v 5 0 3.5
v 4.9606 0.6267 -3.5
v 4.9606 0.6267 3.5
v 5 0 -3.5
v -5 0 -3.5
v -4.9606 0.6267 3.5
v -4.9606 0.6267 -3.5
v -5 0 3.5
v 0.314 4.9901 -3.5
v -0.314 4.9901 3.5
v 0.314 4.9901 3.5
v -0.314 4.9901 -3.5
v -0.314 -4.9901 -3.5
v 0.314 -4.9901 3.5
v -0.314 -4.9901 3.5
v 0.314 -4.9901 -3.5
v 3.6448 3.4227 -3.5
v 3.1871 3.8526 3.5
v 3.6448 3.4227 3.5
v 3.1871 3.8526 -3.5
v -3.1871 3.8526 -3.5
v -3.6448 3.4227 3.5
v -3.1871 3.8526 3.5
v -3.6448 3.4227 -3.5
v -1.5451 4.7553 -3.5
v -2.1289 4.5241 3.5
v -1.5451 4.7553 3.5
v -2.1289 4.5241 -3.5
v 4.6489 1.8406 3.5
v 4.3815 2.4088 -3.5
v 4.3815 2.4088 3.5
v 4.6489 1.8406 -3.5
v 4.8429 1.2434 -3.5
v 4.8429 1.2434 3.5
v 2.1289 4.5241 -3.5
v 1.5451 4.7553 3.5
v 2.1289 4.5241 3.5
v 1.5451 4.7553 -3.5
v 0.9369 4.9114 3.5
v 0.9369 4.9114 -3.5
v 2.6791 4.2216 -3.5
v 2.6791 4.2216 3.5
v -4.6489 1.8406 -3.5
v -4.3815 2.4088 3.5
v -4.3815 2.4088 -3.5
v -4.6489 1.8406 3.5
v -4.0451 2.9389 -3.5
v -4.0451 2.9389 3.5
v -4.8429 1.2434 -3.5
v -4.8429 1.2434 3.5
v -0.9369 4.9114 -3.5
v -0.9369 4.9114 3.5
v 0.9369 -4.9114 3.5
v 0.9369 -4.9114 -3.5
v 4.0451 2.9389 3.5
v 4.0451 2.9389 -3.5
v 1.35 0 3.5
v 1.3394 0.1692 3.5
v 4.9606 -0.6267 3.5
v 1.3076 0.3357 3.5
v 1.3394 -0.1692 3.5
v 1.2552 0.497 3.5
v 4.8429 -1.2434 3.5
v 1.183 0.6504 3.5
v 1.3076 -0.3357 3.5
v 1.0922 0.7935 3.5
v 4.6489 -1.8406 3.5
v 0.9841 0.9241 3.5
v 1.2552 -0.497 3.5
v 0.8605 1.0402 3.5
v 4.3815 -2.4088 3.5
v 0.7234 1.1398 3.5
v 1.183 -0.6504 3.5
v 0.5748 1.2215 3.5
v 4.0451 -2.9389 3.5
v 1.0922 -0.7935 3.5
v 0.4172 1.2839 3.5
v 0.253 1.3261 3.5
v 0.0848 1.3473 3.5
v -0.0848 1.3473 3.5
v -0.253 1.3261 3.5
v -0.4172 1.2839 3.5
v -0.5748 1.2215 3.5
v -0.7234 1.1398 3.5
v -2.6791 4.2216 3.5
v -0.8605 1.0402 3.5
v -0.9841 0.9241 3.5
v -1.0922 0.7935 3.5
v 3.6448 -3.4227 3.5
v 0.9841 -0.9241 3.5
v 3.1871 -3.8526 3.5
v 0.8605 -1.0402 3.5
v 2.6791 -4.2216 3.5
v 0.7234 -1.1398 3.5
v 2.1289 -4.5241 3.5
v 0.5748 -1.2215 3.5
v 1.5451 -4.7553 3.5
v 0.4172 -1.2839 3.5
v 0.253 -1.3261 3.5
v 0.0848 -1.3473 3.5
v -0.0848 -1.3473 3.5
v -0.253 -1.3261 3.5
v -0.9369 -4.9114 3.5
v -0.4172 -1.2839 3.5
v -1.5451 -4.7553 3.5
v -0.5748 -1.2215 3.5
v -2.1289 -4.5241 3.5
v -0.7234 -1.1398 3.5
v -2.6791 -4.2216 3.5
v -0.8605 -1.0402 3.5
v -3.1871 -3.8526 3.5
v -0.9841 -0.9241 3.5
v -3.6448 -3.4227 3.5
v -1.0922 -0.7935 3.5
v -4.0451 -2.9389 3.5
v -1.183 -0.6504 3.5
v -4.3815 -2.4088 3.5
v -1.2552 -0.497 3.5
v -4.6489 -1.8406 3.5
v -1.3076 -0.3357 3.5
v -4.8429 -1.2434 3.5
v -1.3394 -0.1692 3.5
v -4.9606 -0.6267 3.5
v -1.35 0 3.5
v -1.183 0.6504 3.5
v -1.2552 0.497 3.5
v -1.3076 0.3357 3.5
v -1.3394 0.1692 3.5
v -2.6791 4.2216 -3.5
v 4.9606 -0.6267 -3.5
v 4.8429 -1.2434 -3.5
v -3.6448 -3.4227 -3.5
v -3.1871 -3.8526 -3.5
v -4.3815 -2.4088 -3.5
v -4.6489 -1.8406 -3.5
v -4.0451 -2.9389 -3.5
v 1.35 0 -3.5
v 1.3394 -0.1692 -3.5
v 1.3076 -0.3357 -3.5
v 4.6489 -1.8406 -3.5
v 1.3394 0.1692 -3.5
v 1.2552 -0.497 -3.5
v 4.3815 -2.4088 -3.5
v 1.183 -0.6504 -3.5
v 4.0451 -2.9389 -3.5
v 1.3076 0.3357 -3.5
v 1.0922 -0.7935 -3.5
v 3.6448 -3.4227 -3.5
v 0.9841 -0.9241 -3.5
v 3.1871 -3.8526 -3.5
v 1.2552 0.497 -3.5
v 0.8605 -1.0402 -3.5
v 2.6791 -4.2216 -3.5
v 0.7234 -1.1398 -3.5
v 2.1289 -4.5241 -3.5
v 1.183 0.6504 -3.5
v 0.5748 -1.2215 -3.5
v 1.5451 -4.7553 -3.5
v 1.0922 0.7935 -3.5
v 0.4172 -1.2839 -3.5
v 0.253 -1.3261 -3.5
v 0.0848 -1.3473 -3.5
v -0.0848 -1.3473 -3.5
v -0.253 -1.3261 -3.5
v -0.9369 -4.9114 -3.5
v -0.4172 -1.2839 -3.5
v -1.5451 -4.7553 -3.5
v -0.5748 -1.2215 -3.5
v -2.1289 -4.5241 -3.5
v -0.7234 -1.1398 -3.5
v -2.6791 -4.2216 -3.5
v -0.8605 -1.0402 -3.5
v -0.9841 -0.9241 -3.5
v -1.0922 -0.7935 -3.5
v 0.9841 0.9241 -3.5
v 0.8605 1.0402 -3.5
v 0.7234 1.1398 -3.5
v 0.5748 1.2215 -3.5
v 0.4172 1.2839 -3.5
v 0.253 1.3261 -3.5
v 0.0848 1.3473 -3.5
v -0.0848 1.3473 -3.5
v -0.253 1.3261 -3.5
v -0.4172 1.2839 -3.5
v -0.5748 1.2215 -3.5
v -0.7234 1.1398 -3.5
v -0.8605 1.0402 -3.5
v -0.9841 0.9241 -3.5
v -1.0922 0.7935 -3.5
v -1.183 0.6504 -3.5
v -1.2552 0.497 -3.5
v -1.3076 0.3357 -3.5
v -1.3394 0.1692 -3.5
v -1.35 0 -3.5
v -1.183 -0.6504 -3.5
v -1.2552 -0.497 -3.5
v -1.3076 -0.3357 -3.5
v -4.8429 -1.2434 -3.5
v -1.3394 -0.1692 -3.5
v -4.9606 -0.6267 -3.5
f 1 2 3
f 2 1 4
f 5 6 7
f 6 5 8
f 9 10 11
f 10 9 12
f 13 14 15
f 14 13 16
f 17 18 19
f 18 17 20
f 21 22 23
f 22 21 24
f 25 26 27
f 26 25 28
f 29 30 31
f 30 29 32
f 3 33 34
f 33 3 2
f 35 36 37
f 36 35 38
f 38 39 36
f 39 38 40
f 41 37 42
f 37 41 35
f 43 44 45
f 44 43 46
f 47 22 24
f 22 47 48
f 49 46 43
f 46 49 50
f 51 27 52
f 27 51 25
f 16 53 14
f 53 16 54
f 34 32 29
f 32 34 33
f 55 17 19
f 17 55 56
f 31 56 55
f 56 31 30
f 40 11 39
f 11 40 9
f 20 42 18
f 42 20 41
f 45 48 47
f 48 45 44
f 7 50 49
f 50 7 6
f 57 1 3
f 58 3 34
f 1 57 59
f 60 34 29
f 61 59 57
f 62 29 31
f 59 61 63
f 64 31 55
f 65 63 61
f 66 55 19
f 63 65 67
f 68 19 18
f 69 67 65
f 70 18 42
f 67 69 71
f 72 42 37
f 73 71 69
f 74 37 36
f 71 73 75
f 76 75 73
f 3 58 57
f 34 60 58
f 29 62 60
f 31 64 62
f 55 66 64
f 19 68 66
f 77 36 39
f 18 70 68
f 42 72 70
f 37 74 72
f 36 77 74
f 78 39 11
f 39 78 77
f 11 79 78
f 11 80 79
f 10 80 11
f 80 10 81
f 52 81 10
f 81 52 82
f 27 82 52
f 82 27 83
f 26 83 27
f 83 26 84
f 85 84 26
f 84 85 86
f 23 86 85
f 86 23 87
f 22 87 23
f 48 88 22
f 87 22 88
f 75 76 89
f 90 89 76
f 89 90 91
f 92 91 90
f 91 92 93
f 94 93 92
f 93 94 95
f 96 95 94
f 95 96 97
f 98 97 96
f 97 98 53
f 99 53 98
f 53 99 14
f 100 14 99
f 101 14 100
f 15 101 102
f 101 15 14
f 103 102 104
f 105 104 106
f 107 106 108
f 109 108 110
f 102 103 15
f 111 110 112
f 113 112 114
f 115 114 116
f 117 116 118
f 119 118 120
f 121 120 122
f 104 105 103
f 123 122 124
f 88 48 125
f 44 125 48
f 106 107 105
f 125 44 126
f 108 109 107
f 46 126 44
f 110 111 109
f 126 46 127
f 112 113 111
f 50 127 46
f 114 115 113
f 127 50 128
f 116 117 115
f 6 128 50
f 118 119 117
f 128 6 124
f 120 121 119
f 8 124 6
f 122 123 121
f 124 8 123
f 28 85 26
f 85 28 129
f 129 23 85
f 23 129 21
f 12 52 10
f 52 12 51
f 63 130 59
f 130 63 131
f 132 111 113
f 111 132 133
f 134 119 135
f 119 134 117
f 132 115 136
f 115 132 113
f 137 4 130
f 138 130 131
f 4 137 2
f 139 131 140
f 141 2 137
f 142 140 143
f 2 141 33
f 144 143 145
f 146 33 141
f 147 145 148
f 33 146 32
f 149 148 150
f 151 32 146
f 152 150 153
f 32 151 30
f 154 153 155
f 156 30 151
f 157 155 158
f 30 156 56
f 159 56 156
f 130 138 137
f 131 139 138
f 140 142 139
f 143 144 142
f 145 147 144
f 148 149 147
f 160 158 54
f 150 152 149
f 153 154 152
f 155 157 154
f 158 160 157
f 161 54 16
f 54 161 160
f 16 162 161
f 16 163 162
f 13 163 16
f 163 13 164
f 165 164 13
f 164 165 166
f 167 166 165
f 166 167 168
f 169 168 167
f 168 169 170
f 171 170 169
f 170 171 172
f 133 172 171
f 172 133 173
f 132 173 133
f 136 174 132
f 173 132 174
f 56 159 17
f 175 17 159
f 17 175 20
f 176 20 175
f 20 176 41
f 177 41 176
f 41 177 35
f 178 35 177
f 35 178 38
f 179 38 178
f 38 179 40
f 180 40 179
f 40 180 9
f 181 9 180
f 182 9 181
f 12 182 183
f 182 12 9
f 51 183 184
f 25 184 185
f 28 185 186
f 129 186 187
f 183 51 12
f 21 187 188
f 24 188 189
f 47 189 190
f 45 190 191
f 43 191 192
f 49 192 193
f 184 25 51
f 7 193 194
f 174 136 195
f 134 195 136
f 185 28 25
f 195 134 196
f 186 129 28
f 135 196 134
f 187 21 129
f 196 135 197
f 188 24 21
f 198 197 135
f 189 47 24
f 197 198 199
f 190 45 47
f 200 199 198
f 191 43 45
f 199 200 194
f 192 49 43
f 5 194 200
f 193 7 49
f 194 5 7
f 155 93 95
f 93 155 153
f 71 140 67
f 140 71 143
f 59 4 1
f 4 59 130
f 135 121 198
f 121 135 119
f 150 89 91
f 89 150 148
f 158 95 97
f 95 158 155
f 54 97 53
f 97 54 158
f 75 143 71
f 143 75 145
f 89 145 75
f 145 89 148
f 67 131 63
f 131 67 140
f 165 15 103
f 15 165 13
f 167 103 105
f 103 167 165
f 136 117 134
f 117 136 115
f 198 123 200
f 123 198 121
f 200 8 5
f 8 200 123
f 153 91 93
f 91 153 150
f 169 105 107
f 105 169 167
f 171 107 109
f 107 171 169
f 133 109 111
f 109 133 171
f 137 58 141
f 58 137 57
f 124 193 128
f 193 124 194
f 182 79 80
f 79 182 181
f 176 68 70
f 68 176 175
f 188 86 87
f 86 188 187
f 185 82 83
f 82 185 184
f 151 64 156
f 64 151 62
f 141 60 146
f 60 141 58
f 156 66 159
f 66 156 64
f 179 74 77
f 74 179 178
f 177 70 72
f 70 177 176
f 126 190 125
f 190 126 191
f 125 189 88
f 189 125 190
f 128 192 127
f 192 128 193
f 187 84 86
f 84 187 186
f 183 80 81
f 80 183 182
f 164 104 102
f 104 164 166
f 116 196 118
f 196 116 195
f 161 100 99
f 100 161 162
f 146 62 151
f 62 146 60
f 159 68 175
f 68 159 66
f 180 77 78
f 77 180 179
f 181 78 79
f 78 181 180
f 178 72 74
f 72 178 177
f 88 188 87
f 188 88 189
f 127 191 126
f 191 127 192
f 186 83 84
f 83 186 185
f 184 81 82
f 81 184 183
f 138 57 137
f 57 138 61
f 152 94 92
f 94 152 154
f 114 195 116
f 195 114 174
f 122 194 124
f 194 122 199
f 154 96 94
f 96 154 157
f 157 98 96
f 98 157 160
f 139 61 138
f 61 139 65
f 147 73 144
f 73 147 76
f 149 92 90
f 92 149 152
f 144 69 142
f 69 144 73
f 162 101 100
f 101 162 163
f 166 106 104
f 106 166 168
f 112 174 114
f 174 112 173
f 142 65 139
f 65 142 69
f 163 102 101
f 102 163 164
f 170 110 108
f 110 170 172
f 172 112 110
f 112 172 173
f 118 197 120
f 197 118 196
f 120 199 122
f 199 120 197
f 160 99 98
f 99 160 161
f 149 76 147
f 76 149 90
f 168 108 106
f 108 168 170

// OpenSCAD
$fn = 50;


difference() {
	union() {
		translate(v = [0, 0, -3.5000000000]) {
			cylinder(h = 7, r = 5.0000000000);
		}
	}
	union() {
		translate(v = [0, 0, -100.0000000000]) {
			cylinder(h = 200, r = 1.3500000000);
		}
	}
}
